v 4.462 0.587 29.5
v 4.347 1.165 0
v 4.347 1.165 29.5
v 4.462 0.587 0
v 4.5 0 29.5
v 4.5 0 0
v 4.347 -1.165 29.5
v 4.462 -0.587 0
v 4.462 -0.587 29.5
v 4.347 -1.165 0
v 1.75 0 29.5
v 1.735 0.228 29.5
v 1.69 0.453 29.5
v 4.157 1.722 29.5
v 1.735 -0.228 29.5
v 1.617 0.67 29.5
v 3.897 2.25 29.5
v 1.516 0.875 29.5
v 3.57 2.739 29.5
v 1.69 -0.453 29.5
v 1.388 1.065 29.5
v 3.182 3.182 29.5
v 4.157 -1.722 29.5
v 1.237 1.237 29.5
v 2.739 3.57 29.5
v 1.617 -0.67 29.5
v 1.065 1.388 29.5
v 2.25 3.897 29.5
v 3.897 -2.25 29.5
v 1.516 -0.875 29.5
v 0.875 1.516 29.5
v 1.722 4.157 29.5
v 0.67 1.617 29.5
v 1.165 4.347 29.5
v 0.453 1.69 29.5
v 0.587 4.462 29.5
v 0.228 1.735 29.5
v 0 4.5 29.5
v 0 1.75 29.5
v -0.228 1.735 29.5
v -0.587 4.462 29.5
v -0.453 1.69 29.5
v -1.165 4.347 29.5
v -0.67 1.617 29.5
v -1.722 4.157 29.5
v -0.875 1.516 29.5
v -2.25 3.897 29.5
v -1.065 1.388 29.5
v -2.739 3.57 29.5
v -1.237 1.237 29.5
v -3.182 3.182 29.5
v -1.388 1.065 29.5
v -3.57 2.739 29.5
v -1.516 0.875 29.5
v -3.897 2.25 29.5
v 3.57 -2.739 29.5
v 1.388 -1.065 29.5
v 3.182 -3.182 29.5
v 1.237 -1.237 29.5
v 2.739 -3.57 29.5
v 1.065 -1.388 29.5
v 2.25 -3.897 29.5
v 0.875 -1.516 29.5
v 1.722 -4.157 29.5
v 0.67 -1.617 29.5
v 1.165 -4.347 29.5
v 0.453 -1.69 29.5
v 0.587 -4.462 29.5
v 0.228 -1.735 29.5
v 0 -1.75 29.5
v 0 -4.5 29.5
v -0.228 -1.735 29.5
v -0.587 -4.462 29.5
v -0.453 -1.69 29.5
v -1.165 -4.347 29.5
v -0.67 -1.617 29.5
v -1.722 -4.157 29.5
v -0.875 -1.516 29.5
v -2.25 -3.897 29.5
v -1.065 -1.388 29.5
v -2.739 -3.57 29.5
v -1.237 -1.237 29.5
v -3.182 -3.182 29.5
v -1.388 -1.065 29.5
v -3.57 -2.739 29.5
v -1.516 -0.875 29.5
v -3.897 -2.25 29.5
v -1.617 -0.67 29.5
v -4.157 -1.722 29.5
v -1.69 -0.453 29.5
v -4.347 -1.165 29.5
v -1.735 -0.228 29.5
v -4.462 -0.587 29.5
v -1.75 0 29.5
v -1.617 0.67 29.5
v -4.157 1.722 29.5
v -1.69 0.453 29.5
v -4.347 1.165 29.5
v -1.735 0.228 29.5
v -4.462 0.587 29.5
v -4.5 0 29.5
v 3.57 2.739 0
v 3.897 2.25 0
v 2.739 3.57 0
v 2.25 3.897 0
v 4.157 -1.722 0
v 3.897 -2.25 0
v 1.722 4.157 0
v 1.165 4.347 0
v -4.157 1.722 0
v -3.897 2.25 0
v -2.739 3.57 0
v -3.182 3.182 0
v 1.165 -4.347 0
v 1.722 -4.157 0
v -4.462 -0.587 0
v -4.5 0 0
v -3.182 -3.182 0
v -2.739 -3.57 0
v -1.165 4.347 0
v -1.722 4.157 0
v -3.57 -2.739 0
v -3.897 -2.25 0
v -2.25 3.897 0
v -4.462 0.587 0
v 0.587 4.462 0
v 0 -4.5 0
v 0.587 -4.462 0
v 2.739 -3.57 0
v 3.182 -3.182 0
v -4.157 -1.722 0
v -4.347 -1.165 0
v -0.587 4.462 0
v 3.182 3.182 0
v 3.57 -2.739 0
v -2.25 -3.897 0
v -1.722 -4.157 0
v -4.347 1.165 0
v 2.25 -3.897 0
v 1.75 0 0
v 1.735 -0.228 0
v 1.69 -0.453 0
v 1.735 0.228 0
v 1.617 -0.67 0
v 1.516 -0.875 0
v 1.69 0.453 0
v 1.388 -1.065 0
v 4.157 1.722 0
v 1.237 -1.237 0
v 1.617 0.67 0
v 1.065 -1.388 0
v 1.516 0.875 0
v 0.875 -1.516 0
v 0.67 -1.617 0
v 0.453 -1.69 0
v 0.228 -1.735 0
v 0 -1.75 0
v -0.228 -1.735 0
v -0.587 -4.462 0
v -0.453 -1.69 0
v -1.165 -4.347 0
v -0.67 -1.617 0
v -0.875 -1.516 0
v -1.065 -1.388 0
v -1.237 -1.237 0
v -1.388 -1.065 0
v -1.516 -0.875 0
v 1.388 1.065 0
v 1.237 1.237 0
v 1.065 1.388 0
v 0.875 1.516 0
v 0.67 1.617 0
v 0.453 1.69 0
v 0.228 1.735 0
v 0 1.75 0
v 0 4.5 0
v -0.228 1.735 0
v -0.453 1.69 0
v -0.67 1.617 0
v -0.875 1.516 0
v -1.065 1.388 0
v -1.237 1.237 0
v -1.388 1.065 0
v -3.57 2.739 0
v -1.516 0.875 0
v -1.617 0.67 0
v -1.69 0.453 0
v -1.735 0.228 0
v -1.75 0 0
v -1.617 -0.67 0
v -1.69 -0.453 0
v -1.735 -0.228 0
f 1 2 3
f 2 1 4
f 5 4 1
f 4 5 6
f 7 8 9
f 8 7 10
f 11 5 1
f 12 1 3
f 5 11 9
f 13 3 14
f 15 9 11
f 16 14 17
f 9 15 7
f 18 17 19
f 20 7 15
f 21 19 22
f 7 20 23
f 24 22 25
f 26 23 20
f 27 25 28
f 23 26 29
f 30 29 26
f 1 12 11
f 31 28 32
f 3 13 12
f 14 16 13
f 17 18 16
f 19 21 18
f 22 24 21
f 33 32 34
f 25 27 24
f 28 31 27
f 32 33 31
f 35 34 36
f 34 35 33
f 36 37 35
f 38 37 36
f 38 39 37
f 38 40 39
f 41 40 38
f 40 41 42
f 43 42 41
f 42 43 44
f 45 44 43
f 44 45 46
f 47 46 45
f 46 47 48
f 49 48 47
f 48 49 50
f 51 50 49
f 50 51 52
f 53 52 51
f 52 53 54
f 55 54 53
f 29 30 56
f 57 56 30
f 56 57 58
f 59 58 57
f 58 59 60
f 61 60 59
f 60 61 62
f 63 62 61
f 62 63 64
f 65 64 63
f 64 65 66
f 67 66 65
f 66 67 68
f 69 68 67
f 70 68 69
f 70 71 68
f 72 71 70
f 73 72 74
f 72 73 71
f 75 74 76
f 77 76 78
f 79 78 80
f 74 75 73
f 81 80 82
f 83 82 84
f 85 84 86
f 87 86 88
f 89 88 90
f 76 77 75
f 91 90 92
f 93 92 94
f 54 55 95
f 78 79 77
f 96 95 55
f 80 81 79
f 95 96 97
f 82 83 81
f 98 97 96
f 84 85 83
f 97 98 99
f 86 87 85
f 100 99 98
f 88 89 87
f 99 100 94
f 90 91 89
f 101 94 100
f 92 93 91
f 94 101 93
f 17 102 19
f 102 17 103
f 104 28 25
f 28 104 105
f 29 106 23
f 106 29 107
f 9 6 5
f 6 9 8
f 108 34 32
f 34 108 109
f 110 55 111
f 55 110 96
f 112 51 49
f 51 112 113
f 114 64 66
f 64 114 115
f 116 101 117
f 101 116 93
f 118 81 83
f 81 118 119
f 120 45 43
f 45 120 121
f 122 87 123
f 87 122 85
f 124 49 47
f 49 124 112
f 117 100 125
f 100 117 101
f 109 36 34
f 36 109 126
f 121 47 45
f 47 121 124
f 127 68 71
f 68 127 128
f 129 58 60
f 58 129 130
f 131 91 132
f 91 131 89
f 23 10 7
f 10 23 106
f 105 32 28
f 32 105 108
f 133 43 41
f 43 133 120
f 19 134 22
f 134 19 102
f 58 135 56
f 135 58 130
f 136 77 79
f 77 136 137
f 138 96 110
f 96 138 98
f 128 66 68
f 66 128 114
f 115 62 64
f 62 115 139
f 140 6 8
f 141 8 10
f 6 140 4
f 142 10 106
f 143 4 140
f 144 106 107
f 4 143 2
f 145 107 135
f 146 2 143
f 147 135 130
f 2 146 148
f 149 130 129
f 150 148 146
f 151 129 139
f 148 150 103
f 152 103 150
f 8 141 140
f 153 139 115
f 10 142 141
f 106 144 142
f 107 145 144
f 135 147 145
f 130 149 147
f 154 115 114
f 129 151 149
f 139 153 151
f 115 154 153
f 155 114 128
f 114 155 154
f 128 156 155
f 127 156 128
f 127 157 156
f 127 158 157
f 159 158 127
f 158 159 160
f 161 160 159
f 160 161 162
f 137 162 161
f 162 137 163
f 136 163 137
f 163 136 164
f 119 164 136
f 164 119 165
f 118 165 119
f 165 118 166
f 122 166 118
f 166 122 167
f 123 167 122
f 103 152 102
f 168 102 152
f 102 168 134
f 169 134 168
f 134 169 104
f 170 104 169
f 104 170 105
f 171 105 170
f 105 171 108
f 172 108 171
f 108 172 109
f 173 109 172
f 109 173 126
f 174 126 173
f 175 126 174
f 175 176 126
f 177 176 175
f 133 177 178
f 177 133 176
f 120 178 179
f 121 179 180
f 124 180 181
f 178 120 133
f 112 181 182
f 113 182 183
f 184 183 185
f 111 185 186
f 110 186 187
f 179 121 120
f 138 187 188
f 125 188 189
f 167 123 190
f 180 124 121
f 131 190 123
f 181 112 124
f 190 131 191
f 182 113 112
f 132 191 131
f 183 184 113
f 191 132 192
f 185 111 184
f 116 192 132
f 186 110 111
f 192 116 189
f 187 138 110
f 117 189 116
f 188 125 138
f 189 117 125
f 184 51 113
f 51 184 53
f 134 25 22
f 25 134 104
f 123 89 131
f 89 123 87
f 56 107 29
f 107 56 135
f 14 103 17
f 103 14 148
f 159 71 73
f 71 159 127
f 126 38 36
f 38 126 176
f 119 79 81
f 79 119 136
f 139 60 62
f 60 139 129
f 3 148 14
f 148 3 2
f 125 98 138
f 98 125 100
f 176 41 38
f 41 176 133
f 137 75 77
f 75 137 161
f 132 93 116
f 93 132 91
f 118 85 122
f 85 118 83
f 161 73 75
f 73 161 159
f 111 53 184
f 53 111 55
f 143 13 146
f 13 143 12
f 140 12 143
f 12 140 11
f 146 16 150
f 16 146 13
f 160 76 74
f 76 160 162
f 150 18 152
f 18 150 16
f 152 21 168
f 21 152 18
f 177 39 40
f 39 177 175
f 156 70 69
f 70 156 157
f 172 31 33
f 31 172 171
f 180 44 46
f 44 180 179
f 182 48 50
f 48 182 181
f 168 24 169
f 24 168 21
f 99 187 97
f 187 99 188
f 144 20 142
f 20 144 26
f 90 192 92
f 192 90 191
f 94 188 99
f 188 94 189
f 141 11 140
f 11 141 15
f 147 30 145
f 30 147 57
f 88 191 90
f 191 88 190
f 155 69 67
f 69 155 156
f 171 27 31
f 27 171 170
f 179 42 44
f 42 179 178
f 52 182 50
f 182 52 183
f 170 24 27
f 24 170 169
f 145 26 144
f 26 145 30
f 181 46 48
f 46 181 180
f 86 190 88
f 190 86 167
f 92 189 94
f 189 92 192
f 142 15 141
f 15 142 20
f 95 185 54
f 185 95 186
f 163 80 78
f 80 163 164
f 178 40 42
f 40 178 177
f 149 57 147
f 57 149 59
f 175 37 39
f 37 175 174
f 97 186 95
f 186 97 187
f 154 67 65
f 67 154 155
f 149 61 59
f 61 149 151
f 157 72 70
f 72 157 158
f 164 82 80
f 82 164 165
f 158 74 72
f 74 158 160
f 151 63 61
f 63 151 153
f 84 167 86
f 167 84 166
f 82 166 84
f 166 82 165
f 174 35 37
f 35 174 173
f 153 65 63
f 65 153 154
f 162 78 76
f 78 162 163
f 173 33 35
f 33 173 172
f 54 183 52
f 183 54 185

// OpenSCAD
// file: parameters.scad
// =============================================================================
// Gen-BT — nightly 2026-10-09 (physics_scorer, honest magpylib watts)
// The low-cogging 8-pole / 9-coil line (winding factor 0.945) moved to a larger R53 pole ring with 36–70 mm bobbins and a 13.5 mm build, the best 9-coil row in tonight's scans (Gen-BQ was R52 / 35–70 / 12.6). Smoother to spin by hand and quieter, but still well below 6 coils under the wire budget.
// Clocking 0 deg (magnets N facing S) + D-flat keyed bore + index notch + flip-symmetric hole map.
// Windable 2-piece bobbin; turns = physics_scorer turns_fit; copper only between flanges.
// Steel back-iron: 2× Ø140 × 4.76 mm (3/16") mild-steel discs (steel_backiron_disc.dxf); magnets sit ON the steel
// (through-pockets) -> score with --back-iron.
// =============================================================================
topology            = "dual_rotor";

// --- Wire / winding (physics_scorer winding-fit) -------------------------------
wire_awg            = 26;
wire_od             = 0.45;     // insulated OD mm (bare 0.405)
fill_realistic      = 0.65;     // insulated-wire area / window (DENSE layered wind with a jig; scorer cap 0.65)
turns               = 521;       // = physics_scorer turns_fit (do NOT raise)
coil_former_type    = "bobbin";
coil_core_inset     = 13.50;     // radial copper build: hub = copper boundary inset by this
wind_build_axial    = 0.0;      // nothing proud of the flanges
wind_build_radial   = 0.0;

// --- Bobbin (base + lid) ---------------------------------------------------------
coil_id_r           = 36.00;    // copper boundary sector
coil_od_r           = 70.00;
span_deg            = 34.75;    // = pitch - 2*asin((wall+0.85)/coil_id_r) -> >=1.2 mm stator web
former_web          = 9.45;     // copper height between flanges (TALL copper: steel keeps Bz up)
flange_t            = 0.80;     // >= 0.8 mm FDM wall rule (tall winds push on the flanges)
wall                = 0.80;     // flange lip beyond copper
former_bare_h       = former_web + 2 * flange_t;
coil_envelope_h     = former_bare_h + 2 * wind_build_axial;
tab_w               = 7.0;
tab_len             = 7.0;
tab_h               = former_bare_h / 2;
pin_d               = 1.9;      // 1.75 mm filament locating pin
coil_mount_r        = coil_od_r + 0.2 + 4.0;
lead_y              = 1.6;
lead_slot_w         = 0.9;
lead_groove_d       = 0.6;

// --- Gap -------------------------------------------------------------------------
run_clear           = 0.50;     // rotor face -> flange
gap_spacer_h        = run_clear + wind_build_axial;
m2m                 = coil_envelope_h + 2 * run_clear;   // rotor face to rotor face (= gap_sleeve length)

// --- Stator ----------------------------------------------------------------------
coil_stations       = 9;
bay_clear           = 0.25;
stator_thick        = former_bare_h;                        // bobbins flush both faces
stator_od           = 162.0;
shaft_clear_stator  = 14.0;     // stator is static; gap sleeve OD 12 spins inside

// --- Rotor(s) --------------------------------------------------------------------
magnet_Br           = 1.43;     // N52
magnet_d_large      = 20.0;
magnet_h_large      = 5.0;      // one O20x5 per pocket
magnet_h_small      = 5.0;      // one O5x5 per pocket
halbach_magnetisation = "diametric"; // O5x5 assist magnets MUST be DIAMETRICALLY magnetised (tangential)
rotor_b_same_axis   = true;     // same-index magnets share one axis: N faces S across the gap
large_pocket_d      = 20.3;
small_pocket_d      = 5.3;
pocket_h            = 5.00;     // THROUGH the carrier: magnet back face sits on the steel disc (FLUSH seat: carrier = magnet height, magnet face level with the rotor face)
large_n             = 8;
R_large             = 53.0;
R_small_inner       = 45.0;
R_small_mid         = 53.0;
R_small_outer       = 61.0;
small_r_list        = [R_small_inner, R_small_mid, R_small_outer];   // O5 pockets between poles
carrier_od          = 140.0;
carrier_thick       = pocket_h;
hub_h               = 12.0;     // > steel_t + insert: radial set-screw clears the steel
hub_od              = 24.0;     // slim hub so the M4 brace rods fit at R~18 inside the coil ring
hub_insert_d        = 4.0;      // M3 heat-set insert, radial, bears on the D-flat
rotor_b_offset_deg  = 0.0;      // CLOCKING: magnets directly opposite
shaft_key           = "dflat";
dflat_depth         = 0.5;      // 8 mm shaft with 0.5 mm flat (7.5 across flat)
index_notch_d       = 3.0;

// --- Steel back-iron (buyable laser-cut) -------------------------------------------
steel_t             = 4.76;      // mild steel thickness (image method ignores it; sized from steel_flux.py so the return path stays well below saturation)
steel_center_hole   = 26.0;     // slips over the rotor hub (OD 24)
steel_od            = carrier_od;   // steel disc OD = rotor carrier OD

// --- Modular MAX interface ----------------------------------------------------------
shaft_bore          = 8.35;
dflat_x             = 4.0 - dflat_depth + (shaft_bore - 8.0) / 2;
bearing_d           = 21.85;
bearing_h           = 7.2;
m3_clear            = 3.5;
bolt_r_inner        = 30.0;     // M3 steel-disc clamp bolts (inside the magnet ring)
bolt_n_inner        = 4;
bolt_inner_angles   = [0, 90, 180, 270];
bolt_r_outer        = 66.0;     // M3 steel-disc clamp bolts (outside the magnet ring)
bolt_outer_angles   = [45, 135, 225, 315];
flange_bolt_r       = 76.0;     // frame rods: OUTSIDE the rotor OD (rotors spin inside them)
flange_bolt_n       = 9;
flange_bolt_offset  = 20.00;    // between coil stations -> never cuts a lead groove/tab
brace_r             = 18.0;
brace_d             = 4.3;      // temporary M4 jack rods (assembly only)
brace_n             = 4;
brace_angles        = [45, 135, 225, 315];          // flip-symmetric

spacer_pad_od       = 14.0;
spacer_pad_id       = m3_clear;
endbell_od          = 162.0;
endbell_thick       = 8.0;
endbell_shaft_clear = 10.0;
collar_h            = 10.0;
standoff_od         = 9.0;
frame_standoff_h    = run_clear + carrier_thick + hub_h + collar_h + 2.0;
sleeve_od           = 12.0;
plate_max_mm        = 410;

$fn = 64;
// main file
// Gen-BT — frame standoff tube between stator and an endbell, on each M3 frame rod (outside rotor OD).
// Print x18. Height = frame_standoff_h (rotor + steel + hub + collar + running clearance).
include <parameters.scad>;
$fn = 48;
difference() {
    cylinder(d=standoff_od, h=frame_standoff_h);
    translate([0, 0, -0.1]) cylinder(d=m3_clear, h=frame_standoff_h + 0.2);
}
